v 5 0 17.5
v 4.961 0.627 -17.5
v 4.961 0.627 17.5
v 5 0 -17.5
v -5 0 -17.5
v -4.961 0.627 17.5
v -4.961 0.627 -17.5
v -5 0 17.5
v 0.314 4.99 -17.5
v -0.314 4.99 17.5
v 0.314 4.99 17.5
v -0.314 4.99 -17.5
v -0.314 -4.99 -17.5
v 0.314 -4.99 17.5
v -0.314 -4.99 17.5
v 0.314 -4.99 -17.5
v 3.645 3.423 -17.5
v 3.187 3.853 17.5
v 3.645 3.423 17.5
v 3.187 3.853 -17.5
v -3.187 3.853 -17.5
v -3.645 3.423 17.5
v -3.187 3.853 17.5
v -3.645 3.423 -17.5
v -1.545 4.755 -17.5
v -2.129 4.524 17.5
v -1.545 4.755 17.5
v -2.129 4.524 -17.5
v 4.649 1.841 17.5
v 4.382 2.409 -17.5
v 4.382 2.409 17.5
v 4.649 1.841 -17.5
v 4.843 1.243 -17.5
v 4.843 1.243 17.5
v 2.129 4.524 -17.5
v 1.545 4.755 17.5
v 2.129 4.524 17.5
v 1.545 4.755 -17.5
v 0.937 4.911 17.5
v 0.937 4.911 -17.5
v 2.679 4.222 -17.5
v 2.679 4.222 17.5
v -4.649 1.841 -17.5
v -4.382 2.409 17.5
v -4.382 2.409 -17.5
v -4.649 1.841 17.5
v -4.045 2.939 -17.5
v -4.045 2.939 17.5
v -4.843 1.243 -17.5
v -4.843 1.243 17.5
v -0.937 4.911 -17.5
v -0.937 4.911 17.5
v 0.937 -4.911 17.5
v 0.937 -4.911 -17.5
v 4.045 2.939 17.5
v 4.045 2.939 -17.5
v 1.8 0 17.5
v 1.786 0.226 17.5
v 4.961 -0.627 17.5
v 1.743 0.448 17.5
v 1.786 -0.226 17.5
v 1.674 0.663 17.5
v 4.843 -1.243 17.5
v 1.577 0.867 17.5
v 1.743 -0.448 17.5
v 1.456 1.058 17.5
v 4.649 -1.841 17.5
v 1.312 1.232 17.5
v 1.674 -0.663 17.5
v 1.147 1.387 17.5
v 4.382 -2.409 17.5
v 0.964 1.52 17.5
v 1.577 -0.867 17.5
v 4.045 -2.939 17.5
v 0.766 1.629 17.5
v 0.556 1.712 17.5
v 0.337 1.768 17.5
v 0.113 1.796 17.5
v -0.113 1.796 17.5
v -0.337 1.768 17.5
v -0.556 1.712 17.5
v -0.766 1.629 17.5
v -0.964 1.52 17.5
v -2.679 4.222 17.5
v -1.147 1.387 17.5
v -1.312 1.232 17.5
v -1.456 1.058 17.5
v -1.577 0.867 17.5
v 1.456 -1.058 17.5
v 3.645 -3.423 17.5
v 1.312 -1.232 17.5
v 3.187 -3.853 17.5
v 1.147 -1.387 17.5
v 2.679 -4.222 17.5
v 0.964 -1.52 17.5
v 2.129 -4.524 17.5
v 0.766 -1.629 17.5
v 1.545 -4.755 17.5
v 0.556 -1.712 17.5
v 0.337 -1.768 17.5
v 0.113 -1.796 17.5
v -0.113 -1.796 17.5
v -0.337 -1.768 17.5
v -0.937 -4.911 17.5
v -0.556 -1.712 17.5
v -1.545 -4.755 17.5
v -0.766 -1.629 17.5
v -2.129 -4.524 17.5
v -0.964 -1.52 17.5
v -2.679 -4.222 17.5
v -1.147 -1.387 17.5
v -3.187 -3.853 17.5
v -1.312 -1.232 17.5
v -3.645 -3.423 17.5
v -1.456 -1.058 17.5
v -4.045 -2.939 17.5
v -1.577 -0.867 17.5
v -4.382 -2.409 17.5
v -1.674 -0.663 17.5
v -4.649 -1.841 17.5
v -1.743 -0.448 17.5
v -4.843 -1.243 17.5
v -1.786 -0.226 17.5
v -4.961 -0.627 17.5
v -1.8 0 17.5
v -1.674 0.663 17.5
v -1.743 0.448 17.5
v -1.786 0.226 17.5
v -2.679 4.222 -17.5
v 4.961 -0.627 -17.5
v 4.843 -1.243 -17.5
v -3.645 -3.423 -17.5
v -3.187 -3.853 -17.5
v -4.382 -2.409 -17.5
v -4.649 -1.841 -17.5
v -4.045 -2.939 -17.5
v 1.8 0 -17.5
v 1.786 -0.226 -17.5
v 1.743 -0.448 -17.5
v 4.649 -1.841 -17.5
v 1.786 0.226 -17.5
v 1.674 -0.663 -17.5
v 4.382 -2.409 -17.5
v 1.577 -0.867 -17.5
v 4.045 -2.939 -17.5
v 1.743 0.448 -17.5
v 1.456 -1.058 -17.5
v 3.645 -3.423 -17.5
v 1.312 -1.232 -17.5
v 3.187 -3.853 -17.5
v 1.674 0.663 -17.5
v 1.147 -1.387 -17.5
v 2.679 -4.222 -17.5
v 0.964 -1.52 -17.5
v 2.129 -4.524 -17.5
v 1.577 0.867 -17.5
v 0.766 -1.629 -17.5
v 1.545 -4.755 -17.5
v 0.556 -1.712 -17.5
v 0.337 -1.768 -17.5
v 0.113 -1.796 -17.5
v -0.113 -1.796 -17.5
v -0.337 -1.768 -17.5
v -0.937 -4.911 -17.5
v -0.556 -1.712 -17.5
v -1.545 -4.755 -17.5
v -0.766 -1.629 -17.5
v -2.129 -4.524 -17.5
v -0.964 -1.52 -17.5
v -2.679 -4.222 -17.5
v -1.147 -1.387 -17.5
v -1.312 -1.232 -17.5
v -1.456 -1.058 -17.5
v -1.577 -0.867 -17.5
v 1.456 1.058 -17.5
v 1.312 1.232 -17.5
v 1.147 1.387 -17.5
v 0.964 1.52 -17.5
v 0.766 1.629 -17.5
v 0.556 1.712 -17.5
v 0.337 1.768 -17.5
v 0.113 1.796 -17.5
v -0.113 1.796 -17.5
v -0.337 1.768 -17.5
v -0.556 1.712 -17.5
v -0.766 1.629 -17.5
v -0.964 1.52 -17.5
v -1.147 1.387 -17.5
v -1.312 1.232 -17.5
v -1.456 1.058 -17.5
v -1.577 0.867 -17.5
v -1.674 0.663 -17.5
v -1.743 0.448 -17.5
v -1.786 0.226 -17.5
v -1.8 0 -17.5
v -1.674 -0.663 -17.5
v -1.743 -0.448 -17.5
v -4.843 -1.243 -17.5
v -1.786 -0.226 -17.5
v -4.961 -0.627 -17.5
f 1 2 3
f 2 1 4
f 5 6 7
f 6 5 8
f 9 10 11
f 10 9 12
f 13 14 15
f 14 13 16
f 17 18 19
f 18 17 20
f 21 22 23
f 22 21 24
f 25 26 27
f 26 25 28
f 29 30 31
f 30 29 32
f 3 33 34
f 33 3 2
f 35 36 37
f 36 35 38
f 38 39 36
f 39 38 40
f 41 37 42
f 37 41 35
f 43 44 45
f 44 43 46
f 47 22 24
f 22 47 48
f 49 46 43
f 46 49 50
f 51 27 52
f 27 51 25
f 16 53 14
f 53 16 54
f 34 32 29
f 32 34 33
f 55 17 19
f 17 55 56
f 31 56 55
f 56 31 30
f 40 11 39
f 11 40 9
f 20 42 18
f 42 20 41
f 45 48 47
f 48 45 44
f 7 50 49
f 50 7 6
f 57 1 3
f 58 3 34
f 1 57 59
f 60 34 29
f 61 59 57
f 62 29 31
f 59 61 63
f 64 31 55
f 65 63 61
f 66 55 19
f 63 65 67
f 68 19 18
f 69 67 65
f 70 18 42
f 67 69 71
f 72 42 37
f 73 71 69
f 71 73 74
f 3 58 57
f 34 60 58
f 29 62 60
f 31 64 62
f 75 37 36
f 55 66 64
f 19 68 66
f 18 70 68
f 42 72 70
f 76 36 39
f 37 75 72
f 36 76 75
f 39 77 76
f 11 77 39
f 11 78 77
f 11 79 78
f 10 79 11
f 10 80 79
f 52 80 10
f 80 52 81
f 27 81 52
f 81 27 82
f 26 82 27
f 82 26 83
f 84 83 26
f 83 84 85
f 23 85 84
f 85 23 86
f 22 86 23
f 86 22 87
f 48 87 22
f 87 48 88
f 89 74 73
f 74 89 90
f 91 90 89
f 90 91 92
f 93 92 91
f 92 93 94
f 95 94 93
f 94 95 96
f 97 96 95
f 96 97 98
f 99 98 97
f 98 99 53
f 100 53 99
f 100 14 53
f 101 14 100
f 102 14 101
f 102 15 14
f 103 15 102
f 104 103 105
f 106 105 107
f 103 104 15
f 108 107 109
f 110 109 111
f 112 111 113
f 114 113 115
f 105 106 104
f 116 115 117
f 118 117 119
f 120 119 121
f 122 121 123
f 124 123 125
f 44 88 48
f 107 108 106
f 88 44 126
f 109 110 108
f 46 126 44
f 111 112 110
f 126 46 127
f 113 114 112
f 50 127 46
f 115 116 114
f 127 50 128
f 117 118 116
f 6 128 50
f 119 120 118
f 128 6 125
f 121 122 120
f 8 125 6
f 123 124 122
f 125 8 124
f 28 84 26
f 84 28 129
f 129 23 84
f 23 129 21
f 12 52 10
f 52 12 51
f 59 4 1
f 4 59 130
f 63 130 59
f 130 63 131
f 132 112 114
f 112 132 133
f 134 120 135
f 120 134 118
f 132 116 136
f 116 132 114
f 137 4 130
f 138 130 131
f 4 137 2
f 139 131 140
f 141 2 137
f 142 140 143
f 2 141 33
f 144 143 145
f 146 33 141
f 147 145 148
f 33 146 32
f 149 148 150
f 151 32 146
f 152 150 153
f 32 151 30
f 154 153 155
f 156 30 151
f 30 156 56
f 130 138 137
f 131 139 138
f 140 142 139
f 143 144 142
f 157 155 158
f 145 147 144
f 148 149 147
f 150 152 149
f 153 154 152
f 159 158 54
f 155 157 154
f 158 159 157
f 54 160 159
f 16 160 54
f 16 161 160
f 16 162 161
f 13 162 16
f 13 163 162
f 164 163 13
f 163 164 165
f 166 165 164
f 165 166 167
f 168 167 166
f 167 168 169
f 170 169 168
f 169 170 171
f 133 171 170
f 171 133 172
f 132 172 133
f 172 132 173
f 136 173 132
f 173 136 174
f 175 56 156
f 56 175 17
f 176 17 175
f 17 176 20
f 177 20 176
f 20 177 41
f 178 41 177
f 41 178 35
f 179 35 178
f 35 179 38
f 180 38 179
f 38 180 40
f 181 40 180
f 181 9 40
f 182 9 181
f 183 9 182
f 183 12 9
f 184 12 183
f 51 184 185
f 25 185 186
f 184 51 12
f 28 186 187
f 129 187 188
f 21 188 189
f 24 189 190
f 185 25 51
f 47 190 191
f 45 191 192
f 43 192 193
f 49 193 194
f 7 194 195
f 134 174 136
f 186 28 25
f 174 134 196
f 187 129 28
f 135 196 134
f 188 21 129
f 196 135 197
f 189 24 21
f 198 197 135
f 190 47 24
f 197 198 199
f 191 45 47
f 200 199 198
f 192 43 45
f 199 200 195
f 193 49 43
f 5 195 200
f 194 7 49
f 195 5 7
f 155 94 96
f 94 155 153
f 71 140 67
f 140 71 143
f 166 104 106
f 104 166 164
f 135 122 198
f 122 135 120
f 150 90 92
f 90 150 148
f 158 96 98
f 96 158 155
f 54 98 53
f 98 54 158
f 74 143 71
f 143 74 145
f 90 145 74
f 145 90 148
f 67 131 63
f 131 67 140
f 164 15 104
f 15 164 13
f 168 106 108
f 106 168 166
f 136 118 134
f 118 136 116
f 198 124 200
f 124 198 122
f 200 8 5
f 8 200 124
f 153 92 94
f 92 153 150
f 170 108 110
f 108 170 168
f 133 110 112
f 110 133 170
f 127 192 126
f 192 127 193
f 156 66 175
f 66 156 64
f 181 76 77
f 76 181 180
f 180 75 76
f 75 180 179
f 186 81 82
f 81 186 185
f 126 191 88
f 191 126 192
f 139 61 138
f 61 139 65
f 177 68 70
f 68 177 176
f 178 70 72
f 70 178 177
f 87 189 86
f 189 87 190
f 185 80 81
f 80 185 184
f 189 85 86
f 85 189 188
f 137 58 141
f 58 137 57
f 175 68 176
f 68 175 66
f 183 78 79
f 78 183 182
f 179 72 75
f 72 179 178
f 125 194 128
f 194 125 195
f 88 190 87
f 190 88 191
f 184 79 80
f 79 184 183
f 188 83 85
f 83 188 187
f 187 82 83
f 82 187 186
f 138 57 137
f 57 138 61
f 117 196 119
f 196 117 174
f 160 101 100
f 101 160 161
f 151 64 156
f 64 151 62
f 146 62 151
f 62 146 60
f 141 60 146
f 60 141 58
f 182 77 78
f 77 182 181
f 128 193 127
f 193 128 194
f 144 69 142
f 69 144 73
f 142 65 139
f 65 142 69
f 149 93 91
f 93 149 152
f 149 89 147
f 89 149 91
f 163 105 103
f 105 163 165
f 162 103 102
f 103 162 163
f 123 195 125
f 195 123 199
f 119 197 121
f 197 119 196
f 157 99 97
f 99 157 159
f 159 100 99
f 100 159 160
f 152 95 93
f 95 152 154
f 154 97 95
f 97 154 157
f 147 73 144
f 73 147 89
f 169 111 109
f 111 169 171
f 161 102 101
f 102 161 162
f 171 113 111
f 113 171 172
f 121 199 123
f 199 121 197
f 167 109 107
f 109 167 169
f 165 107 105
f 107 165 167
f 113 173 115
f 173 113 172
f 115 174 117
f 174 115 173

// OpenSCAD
$fn = 50;


difference() {
	union() {
		translate(v = [0, 0, -17.5000000000]) {
			cylinder(h = 35, r = 5.0000000000);
		}
	}
	union() {
		translate(v = [0, 0, -100.0000000000]) {
			cylinder(h = 200, r = 1.8000000000);
		}
	}
}
